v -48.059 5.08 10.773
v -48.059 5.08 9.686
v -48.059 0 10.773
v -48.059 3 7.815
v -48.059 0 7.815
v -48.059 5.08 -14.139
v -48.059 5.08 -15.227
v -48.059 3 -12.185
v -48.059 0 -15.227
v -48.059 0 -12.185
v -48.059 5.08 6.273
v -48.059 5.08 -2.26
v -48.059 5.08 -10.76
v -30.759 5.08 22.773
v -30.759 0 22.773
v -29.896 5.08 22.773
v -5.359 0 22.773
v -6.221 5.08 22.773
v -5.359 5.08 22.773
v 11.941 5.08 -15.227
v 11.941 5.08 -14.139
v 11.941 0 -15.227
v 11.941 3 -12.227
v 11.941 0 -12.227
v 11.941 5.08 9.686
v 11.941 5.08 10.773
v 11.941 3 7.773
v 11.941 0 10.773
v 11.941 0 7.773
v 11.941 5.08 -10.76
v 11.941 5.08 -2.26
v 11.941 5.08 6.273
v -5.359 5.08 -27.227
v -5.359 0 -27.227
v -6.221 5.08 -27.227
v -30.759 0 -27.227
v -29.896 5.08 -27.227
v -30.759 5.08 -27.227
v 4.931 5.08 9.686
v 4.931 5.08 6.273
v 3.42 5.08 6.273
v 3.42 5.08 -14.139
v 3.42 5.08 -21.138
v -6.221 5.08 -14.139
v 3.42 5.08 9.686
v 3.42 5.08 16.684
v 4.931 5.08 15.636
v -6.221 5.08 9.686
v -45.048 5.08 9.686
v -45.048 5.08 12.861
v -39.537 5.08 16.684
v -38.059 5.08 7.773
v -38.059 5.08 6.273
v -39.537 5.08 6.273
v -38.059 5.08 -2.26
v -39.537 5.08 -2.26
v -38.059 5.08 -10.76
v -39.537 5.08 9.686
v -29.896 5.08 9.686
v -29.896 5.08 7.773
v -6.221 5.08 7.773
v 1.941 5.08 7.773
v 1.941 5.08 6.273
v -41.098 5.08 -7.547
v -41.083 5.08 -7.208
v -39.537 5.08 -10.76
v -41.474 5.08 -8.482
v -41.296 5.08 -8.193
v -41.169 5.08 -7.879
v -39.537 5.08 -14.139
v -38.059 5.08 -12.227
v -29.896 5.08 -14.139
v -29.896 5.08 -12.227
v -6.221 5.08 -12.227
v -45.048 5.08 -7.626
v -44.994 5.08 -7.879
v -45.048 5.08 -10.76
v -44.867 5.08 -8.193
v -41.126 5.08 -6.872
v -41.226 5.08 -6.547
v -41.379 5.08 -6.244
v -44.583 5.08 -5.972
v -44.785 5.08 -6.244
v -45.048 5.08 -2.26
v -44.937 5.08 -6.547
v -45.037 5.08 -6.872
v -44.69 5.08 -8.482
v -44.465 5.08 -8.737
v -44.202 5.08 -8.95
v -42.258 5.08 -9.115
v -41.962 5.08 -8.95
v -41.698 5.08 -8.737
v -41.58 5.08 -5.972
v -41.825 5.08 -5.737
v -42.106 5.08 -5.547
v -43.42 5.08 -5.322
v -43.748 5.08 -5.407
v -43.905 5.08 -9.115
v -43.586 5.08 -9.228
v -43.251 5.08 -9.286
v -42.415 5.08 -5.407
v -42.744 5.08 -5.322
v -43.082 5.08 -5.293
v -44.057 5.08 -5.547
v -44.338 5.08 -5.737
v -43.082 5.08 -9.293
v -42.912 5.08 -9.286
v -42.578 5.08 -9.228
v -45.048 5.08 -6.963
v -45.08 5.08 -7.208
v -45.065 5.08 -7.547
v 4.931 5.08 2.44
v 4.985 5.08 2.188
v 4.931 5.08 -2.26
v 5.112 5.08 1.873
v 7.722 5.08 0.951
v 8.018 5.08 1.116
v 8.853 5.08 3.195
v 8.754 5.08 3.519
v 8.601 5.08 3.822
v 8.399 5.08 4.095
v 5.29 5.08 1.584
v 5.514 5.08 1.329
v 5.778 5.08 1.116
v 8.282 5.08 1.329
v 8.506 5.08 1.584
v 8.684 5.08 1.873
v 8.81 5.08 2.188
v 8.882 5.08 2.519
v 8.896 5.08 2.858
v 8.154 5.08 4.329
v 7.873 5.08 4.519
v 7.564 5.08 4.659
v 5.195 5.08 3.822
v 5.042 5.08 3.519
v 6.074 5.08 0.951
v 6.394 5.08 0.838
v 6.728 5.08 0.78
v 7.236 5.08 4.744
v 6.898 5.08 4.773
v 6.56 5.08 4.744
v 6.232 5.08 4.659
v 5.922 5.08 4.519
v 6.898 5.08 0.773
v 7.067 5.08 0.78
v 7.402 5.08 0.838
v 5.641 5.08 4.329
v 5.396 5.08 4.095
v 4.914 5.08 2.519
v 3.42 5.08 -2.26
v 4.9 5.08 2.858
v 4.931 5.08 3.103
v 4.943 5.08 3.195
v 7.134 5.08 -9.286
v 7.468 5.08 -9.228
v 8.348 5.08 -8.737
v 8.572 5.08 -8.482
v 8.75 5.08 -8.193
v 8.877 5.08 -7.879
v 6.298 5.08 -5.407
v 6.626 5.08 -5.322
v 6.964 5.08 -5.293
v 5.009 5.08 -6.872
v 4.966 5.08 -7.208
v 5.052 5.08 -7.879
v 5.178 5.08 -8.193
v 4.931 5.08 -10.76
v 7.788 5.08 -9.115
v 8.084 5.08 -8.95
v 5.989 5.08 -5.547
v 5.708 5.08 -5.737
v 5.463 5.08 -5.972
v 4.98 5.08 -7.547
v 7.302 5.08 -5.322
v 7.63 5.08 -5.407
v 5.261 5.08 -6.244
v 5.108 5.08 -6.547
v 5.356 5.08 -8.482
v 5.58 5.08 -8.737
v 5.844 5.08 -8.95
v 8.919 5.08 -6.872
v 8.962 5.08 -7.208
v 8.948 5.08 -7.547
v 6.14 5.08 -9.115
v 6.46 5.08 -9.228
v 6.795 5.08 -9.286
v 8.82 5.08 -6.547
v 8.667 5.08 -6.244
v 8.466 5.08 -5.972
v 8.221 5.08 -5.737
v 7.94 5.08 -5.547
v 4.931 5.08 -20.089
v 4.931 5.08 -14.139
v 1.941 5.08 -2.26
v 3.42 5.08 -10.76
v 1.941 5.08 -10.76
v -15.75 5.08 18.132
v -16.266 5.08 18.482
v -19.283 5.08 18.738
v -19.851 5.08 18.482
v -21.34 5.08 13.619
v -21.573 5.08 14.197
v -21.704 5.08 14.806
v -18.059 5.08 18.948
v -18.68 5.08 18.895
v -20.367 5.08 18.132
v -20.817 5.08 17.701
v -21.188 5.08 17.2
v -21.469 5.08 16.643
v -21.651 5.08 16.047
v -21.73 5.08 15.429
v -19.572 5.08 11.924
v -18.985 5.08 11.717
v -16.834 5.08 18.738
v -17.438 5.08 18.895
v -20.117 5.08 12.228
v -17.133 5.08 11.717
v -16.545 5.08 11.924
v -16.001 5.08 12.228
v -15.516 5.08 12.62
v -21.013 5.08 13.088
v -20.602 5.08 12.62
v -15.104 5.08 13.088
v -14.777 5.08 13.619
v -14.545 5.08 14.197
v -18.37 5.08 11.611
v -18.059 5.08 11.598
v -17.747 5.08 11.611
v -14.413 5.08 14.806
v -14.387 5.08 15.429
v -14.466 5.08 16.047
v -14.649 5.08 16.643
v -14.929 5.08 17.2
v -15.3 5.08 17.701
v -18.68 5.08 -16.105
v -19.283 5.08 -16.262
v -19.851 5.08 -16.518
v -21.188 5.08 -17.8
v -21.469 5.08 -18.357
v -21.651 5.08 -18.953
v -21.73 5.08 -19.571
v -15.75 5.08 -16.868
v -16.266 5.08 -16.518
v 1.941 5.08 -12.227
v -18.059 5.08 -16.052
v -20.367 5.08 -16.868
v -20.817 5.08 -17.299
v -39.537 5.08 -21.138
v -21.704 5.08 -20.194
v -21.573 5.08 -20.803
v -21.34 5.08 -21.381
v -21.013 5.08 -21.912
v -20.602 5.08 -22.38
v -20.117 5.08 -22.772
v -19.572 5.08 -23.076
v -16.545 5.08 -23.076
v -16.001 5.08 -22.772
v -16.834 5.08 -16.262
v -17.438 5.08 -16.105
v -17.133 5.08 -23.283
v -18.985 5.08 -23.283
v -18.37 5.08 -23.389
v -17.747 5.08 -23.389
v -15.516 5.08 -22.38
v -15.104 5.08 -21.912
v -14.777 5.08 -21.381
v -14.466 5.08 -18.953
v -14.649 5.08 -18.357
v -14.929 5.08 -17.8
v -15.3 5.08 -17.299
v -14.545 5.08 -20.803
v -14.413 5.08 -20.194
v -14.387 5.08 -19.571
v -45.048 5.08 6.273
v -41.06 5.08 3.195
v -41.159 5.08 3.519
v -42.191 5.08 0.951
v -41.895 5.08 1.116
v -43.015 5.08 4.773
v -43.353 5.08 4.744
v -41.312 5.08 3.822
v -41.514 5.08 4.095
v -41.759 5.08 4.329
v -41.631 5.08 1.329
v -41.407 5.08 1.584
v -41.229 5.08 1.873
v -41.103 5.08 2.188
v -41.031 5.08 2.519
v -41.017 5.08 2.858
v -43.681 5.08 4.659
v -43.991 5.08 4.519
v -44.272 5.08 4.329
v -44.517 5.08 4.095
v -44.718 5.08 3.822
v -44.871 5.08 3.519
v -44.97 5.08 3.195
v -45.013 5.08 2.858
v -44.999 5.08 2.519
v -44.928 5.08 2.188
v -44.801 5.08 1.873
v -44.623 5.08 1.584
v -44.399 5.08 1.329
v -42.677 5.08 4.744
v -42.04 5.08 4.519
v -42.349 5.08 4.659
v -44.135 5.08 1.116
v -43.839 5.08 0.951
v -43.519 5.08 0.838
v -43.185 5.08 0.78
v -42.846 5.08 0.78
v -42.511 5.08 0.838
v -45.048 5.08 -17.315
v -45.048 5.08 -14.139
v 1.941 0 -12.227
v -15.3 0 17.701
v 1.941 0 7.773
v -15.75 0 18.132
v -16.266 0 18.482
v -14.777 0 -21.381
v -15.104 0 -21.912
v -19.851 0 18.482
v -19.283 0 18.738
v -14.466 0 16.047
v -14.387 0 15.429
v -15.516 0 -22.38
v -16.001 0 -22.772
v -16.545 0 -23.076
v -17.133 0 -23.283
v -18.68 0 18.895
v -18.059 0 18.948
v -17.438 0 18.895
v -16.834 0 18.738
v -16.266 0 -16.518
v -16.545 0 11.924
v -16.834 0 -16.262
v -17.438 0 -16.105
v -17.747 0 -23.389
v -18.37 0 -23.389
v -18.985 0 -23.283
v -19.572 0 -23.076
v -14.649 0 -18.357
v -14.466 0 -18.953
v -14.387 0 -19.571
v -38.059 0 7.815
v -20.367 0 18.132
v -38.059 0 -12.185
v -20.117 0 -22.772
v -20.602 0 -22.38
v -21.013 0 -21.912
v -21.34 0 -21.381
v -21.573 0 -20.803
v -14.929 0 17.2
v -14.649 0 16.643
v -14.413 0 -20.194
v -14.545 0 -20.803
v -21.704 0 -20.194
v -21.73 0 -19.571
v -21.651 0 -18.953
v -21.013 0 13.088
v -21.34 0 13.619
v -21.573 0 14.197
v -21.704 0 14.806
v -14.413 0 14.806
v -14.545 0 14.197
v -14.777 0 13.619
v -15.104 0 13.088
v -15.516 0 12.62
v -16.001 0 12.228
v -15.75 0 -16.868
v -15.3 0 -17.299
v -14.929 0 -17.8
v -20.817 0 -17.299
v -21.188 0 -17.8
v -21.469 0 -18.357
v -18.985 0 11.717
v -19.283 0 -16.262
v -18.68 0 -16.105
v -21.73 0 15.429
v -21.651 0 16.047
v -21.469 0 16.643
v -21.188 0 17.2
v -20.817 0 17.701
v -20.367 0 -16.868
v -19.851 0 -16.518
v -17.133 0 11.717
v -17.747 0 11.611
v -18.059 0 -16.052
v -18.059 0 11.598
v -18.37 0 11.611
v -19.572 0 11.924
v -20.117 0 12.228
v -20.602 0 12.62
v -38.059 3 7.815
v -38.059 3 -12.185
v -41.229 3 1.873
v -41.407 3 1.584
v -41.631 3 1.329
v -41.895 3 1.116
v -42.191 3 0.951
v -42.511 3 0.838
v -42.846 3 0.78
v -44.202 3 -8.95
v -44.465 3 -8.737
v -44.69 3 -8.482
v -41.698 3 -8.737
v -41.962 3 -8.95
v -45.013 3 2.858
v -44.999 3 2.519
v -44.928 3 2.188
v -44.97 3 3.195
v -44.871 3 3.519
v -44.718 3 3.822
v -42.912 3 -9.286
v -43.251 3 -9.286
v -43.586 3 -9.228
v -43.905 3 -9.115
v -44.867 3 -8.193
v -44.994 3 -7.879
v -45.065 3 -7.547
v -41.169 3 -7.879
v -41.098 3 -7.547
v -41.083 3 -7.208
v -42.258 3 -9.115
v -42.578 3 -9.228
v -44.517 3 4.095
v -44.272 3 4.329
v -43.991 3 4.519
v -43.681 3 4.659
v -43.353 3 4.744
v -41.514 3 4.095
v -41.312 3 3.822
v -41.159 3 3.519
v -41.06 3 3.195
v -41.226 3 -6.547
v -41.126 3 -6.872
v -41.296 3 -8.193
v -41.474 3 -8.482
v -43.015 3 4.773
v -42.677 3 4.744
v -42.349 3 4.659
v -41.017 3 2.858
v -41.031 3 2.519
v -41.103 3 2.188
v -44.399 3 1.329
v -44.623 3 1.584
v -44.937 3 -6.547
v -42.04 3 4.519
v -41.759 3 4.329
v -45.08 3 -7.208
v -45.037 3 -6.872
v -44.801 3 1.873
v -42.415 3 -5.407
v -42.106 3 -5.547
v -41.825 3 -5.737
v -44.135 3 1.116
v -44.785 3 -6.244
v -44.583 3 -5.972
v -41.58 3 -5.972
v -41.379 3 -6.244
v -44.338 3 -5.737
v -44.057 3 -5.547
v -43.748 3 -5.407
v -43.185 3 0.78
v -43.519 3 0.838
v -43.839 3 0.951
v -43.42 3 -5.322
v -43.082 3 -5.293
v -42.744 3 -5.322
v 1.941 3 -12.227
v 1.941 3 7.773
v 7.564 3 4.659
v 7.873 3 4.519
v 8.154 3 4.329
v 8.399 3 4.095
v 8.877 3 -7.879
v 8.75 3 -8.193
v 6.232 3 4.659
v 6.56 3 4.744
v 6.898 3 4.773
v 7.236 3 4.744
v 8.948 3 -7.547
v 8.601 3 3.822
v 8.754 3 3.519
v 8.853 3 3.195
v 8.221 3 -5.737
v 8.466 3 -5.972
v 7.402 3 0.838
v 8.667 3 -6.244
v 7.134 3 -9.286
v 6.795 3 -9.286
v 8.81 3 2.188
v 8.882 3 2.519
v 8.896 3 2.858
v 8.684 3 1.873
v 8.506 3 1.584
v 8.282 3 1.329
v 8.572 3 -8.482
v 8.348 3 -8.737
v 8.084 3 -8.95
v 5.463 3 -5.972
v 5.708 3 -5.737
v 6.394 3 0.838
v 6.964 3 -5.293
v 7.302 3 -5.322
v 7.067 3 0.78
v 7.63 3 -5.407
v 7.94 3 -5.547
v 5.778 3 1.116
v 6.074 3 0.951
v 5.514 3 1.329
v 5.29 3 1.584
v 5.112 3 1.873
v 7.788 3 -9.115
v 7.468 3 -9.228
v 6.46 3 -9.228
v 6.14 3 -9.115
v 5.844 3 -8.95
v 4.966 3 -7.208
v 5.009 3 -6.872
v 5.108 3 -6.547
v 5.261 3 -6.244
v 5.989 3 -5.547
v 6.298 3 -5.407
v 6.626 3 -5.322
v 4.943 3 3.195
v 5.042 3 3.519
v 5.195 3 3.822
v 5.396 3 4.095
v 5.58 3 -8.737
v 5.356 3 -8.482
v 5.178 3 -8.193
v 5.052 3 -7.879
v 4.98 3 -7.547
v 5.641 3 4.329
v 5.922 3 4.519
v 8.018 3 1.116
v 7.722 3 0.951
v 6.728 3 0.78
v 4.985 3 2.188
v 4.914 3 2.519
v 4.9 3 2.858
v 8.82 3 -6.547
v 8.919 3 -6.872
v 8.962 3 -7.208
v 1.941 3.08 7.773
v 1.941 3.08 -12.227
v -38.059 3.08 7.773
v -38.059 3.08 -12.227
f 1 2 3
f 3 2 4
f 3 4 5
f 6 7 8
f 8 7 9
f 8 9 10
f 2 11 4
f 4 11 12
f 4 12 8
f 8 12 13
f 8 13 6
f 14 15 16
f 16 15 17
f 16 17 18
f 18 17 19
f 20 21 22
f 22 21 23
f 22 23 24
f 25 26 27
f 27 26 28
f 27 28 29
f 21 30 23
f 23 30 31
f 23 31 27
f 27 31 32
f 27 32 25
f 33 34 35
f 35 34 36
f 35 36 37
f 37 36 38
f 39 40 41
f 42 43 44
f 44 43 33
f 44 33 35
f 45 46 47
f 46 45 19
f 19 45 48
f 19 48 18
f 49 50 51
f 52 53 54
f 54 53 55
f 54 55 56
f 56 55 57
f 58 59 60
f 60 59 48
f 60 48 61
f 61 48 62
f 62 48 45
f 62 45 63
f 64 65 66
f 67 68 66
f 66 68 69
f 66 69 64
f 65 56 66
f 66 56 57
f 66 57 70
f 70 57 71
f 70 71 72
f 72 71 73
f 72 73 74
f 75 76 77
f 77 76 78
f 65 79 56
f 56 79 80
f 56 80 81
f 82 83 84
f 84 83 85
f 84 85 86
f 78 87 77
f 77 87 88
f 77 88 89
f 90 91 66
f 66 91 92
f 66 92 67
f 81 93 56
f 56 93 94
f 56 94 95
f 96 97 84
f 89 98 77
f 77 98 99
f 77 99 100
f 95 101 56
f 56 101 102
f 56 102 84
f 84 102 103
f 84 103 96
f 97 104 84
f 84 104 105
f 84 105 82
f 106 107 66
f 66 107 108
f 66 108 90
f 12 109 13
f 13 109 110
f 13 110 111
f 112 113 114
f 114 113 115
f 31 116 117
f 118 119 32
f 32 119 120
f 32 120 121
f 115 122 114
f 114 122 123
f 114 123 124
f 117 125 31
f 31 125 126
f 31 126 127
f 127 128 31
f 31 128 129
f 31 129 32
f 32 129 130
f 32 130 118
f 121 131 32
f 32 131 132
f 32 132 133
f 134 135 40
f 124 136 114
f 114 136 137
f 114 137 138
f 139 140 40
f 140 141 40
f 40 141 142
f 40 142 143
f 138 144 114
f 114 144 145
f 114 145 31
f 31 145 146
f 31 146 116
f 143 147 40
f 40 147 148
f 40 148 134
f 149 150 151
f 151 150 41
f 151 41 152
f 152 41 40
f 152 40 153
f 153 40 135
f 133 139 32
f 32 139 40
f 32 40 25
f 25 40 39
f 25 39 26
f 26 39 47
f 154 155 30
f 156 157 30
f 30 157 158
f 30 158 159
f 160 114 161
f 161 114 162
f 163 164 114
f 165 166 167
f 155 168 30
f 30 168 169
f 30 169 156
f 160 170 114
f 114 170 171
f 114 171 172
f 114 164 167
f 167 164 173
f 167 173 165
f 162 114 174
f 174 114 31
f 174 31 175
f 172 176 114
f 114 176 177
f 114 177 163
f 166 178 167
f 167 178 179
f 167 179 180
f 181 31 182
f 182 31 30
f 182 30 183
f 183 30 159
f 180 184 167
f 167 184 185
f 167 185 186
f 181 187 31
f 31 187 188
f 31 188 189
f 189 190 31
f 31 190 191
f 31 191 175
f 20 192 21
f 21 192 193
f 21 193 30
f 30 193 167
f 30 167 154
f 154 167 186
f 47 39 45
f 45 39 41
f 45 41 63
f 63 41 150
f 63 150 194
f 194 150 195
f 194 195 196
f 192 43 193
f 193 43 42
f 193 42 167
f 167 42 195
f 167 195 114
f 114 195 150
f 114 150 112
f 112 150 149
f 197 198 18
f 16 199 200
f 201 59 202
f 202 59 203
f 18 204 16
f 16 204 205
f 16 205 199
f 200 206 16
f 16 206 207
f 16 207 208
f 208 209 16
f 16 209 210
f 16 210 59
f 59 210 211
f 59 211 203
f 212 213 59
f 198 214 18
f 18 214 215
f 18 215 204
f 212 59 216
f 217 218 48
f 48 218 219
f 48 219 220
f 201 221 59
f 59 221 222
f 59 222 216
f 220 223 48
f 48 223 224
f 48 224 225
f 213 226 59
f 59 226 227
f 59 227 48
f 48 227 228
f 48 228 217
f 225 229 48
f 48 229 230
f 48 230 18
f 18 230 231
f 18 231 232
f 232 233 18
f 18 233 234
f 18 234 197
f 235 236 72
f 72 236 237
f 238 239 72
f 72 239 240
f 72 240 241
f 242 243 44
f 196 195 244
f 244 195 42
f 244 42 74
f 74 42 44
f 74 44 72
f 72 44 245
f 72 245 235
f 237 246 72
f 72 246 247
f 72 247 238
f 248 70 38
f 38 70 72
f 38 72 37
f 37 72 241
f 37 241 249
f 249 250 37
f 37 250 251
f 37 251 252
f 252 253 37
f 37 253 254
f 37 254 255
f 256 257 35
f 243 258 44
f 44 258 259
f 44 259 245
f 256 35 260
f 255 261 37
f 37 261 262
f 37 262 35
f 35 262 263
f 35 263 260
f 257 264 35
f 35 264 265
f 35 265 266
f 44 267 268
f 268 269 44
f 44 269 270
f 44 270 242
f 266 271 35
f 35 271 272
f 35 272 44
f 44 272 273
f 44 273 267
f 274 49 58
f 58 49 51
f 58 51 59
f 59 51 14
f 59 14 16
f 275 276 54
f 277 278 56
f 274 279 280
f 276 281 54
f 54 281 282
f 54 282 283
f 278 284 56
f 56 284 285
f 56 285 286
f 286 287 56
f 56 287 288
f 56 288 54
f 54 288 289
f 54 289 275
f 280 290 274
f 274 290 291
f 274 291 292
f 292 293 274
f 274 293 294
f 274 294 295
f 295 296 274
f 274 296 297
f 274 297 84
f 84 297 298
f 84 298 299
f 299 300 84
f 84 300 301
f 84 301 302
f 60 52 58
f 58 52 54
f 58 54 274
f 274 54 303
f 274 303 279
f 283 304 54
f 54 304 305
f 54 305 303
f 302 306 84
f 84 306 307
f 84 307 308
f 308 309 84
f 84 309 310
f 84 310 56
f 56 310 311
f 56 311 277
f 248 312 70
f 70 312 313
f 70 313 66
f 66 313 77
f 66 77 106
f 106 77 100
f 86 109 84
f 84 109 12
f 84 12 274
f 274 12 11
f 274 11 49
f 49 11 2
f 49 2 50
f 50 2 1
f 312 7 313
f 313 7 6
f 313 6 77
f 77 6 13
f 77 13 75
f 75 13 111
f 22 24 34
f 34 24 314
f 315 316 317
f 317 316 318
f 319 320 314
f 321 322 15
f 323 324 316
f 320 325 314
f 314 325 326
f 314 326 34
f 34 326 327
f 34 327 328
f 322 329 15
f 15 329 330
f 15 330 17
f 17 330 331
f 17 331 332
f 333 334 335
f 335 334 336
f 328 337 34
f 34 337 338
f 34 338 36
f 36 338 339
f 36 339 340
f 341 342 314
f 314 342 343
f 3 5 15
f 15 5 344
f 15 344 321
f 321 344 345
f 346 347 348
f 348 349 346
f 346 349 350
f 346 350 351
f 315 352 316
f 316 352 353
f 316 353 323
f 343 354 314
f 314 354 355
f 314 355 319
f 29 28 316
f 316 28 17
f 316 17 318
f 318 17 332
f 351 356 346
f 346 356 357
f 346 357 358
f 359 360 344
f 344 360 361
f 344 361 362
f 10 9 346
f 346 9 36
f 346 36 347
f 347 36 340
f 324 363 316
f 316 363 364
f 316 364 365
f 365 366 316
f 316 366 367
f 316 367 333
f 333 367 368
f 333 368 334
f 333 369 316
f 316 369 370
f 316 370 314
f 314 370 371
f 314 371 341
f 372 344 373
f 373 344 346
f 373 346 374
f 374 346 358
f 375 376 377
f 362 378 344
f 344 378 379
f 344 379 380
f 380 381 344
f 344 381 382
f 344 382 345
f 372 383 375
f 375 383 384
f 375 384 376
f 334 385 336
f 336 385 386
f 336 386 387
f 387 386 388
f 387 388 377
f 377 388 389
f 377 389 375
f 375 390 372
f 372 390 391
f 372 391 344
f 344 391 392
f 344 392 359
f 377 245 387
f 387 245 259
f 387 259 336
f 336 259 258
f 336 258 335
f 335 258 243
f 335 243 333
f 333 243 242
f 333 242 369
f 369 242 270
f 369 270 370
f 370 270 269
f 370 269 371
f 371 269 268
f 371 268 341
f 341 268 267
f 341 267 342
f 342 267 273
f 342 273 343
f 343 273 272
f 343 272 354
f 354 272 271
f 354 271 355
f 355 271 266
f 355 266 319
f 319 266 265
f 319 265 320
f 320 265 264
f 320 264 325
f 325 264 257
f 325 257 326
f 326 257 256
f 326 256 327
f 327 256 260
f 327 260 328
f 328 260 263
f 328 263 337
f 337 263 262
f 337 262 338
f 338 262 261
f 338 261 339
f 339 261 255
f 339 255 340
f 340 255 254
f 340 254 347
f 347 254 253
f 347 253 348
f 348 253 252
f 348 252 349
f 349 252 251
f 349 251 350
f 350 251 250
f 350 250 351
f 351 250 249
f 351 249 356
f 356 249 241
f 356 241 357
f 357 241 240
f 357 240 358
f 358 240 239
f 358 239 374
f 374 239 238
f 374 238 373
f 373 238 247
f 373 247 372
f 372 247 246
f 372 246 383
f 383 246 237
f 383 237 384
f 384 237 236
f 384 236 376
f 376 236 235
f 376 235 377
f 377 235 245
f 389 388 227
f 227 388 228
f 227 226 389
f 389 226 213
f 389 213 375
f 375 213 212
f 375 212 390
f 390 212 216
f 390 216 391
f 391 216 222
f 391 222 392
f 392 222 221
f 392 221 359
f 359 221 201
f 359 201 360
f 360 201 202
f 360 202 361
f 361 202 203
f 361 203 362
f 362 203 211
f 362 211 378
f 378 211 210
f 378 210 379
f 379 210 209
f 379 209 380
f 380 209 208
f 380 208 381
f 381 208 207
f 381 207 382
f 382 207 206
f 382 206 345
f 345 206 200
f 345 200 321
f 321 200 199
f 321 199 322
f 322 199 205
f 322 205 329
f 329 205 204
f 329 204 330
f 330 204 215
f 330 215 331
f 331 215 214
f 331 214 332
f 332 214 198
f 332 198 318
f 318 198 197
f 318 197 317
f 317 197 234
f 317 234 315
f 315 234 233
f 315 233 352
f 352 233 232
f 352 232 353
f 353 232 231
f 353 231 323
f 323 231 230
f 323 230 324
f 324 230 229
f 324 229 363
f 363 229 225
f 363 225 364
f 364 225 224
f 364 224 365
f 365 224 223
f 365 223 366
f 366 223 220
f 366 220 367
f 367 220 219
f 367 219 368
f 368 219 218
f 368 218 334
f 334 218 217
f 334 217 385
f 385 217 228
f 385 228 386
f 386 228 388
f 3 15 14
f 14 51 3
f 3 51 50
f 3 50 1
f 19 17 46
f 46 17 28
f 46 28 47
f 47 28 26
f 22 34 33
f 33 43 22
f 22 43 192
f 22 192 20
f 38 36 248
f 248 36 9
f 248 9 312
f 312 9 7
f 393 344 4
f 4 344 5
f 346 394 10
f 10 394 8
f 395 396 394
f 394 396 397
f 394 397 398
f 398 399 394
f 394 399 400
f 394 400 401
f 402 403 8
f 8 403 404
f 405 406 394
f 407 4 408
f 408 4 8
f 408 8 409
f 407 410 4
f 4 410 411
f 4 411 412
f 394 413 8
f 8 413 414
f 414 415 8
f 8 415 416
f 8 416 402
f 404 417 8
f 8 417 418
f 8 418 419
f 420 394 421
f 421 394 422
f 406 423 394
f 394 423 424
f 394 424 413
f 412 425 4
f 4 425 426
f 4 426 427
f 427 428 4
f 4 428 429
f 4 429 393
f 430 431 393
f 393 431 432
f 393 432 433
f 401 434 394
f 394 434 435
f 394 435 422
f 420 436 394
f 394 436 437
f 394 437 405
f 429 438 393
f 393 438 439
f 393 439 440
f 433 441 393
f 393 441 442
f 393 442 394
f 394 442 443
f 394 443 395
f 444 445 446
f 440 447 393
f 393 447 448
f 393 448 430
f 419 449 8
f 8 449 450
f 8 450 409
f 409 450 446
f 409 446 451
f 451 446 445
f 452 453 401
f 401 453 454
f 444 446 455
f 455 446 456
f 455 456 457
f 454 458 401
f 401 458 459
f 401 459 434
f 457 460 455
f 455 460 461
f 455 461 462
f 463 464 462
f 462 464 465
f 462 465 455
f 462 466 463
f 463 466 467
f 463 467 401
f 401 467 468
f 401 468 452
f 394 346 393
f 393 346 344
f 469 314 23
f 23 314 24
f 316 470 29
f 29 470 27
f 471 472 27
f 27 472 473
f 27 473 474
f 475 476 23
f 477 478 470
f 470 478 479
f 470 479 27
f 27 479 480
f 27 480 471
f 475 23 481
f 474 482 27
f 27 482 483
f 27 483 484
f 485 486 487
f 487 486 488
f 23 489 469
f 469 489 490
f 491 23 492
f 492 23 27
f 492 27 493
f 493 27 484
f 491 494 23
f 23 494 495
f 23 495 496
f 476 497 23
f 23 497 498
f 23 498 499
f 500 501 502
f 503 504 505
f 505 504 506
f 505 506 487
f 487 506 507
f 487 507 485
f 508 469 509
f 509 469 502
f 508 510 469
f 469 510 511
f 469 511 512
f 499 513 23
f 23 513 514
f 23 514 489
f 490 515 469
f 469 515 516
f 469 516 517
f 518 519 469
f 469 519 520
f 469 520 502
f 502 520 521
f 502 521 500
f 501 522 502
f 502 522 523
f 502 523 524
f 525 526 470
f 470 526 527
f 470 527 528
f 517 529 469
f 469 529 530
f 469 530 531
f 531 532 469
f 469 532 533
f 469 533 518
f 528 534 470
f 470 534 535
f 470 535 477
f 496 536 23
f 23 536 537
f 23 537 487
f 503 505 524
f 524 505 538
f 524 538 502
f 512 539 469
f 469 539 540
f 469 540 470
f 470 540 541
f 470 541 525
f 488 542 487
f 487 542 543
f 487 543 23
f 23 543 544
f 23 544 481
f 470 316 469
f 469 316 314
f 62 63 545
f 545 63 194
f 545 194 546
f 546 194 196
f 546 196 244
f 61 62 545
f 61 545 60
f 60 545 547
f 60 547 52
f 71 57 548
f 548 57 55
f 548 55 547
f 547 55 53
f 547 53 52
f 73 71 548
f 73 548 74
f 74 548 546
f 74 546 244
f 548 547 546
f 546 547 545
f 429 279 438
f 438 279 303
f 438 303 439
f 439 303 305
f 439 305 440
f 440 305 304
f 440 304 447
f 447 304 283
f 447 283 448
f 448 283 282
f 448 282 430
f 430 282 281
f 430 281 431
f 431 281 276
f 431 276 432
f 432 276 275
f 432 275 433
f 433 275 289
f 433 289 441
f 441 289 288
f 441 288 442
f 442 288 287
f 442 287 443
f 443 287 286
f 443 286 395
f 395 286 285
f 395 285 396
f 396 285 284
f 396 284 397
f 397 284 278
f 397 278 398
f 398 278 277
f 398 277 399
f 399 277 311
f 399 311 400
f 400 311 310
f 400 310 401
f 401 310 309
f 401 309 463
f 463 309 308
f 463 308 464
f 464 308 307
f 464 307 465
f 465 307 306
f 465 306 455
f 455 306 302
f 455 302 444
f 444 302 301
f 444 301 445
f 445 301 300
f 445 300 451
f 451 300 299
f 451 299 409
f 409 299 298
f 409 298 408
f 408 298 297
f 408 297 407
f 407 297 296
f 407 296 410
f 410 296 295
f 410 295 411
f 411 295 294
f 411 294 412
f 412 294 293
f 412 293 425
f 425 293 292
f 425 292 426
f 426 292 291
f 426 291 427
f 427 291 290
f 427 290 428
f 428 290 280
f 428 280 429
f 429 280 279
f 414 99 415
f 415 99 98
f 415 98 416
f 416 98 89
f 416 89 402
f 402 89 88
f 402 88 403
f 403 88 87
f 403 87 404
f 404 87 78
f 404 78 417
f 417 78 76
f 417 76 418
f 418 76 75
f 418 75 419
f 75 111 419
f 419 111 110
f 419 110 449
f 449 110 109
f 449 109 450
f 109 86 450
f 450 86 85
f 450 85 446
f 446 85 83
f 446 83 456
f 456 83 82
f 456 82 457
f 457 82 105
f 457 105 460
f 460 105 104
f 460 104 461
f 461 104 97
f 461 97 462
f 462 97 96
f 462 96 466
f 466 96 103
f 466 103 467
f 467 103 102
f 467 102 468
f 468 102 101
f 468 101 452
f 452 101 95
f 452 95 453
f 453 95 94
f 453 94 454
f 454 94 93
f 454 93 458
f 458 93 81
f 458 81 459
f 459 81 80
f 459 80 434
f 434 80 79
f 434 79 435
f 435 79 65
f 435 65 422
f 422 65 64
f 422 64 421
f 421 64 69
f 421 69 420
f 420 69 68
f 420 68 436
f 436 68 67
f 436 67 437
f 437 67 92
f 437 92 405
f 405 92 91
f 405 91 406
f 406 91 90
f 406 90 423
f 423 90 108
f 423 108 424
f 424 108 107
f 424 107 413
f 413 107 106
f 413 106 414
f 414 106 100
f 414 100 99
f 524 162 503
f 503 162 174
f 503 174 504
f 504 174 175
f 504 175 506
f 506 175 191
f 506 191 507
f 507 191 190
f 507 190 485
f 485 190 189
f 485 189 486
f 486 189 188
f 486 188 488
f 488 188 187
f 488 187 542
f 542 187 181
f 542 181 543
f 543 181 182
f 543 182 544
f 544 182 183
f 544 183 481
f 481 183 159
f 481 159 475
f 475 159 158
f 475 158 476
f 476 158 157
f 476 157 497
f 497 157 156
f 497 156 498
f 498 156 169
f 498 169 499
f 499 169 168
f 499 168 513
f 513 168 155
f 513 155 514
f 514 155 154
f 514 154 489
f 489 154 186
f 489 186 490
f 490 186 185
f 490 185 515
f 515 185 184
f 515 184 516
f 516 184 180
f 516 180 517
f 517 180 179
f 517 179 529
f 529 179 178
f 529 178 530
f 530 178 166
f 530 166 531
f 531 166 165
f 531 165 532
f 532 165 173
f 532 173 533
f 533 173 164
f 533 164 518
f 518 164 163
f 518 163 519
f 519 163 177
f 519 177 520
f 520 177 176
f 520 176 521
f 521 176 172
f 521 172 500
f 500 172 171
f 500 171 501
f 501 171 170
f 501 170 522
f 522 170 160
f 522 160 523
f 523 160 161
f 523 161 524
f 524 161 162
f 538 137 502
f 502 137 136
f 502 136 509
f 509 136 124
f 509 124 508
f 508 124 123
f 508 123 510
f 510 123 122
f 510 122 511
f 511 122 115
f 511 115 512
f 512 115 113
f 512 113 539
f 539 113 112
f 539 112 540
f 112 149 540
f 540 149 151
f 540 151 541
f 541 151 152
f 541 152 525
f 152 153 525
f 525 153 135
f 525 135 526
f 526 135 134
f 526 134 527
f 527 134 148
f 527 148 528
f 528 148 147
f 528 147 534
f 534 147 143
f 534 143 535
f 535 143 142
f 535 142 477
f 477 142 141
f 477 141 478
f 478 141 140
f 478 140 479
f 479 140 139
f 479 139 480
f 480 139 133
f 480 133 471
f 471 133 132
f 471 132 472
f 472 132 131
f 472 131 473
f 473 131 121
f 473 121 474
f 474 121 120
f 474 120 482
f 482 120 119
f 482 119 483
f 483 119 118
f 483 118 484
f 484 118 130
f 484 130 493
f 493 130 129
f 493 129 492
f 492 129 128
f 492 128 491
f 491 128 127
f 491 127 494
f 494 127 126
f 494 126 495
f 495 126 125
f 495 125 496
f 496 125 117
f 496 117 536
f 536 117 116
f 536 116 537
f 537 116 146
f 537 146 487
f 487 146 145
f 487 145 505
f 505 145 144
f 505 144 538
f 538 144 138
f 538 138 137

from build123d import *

# Parameters (mm, degrees)
SKETCH1_W           = 60
SKETCH1_H           = 50
BOSS_EXTRUDE1_DEPTH = 5.08
SKETCH2_OUTSIDE_W   = 77.654
SKETCH2_OUTSIDE_H   = 67.654
SKETCH2_OUTSIDE_R   = 3.675
CUT_EXTRUDE1_DEPTH  = 56.468381585
SKETCH12_W          = 20
SKETCH12_H          = 3
CUT_EXTRUDE6_DEPTH  = 10
SKETCH13_W          = 20
SKETCH13_H          = 3
CUT_EXTRUDE7_DEPTH  = 10
SKETCH14_W          = 40
SKETCH14_H          = 20
CUT_EXTRUDE8_DEPTH  = 2
SKETCH15_R          = 2
CUT_EXTRUDE9_DEPTH  = 56.468381585


with BuildPart() as part:
    # Sketch1 → Boss-Extrude1 (new body)
    with BuildSketch(Plane(origin=(0, 0, 0), x_dir=(1, 0, 0), z_dir=(0, 1, 0))):
        with Locations((-18.058684047, 2.226785401)):
            Rectangle(SKETCH1_W, SKETCH1_H)
    extrude(amount=BOSS_EXTRUDE1_DEPTH)

    # Sketch2 outside → Cut-Extrude1 (cut, through all)
    # profile 1 of 3: a face of its own
    with BuildSketch(Plane(origin=(0, 5.08, 0), x_dir=(1, 0, 0), z_dir=(0, 1, 0))):
        with Locations((-18.059, 2.227)):
            Rectangle(SKETCH2_OUTSIDE_W, SKETCH2_OUTSIDE_H)
        Polygon((-30.758684047, 27.226785401), (-5.358684047, 27.226785401), (11.941315953, 15.226785401), (11.941315953, -10.773214599), (-5.358684047, -22.773214599), (-30.758684047, -22.773214599), (-48.058684047, -10.773214599), (-48.058684047, 15.226785401), align=None, mode=Mode.SUBTRACT)
    # profile 2 of 3: a face of its own
    with BuildSketch(Plane(origin=(0, 5.08, 0), x_dir=(1, 0, 0), z_dir=(0, 1, 0))):
        with Locations(Location((-18.058684047, 19.726785401, 0), (0, 0, 270))):
            Circle(SKETCH2_OUTSIDE_R)
    # profile 3 of 3: a face of its own
    with BuildSketch(Plane(origin=(0, 5.08, 0), x_dir=(1, 0, 0), z_dir=(0, 1, 0))):
        with Locations(Location((-18.058684047, -15.273214599, 0), (0, 0, 90))):
            Circle(SKETCH2_OUTSIDE_R)
    extrude(amount=-CUT_EXTRUDE1_DEPTH, mode=Mode.SUBTRACT)

    # Sketch12 → Cut-Extrude6 (cut)
    with BuildSketch(Plane.ZY.offset(48.058684047)):
        with Locations((-2.185006669, 1.5)):
            Rectangle(SKETCH12_W, SKETCH12_H)
    extrude(amount=-CUT_EXTRUDE6_DEPTH, mode=Mode.SUBTRACT)

    # Sketch13 → Cut-Extrude7 (cut)
    with BuildSketch(Plane(origin=(11.941315953, 0, 0), x_dir=(0, 0, -1), z_dir=(1, 0, 0))):
        with Locations((2.226785401, 1.5)):
            Rectangle(SKETCH13_W, SKETCH13_H)
    extrude(amount=-CUT_EXTRUDE7_DEPTH, mode=Mode.SUBTRACT)

    # Sketch14 → Cut-Extrude8 (cut)
    with BuildSketch(Plane(origin=(0, 5.08, 0), x_dir=(1, 0, 0), z_dir=(0, 1, 0))):
        with Locations((-18.058684047, 2.226785401)):
            Rectangle(SKETCH14_W, SKETCH14_H)
    extrude(amount=-CUT_EXTRUDE8_DEPTH, mode=Mode.SUBTRACT)

    # Sketch15 → Cut-Extrude9 (cut, through all)
    with BuildSketch(Plane(origin=(0, 5.08, 0), x_dir=(1, 0, 0), z_dir=(0, 1, 0))):
        with Locations(Location((-43.015186805, -2.773214599, 0), (0, 0, 270))):
            Circle(SKETCH15_R)
        with Locations(Location((-43.081568636, 7.292867381, 0), (0, 0, 270))):
            Circle(SKETCH15_R)
        with Locations(Location((6.964200542, 7.292867381, 0), (0, 0, 270))):
            Circle(SKETCH15_R)
        with Locations(Location((6.89781871, -2.773214599, 0), (0, 0, 270))):
            Circle(SKETCH15_R)
    extrude(amount=-CUT_EXTRUDE9_DEPTH, mode=Mode.SUBTRACT)


solid = part.part
